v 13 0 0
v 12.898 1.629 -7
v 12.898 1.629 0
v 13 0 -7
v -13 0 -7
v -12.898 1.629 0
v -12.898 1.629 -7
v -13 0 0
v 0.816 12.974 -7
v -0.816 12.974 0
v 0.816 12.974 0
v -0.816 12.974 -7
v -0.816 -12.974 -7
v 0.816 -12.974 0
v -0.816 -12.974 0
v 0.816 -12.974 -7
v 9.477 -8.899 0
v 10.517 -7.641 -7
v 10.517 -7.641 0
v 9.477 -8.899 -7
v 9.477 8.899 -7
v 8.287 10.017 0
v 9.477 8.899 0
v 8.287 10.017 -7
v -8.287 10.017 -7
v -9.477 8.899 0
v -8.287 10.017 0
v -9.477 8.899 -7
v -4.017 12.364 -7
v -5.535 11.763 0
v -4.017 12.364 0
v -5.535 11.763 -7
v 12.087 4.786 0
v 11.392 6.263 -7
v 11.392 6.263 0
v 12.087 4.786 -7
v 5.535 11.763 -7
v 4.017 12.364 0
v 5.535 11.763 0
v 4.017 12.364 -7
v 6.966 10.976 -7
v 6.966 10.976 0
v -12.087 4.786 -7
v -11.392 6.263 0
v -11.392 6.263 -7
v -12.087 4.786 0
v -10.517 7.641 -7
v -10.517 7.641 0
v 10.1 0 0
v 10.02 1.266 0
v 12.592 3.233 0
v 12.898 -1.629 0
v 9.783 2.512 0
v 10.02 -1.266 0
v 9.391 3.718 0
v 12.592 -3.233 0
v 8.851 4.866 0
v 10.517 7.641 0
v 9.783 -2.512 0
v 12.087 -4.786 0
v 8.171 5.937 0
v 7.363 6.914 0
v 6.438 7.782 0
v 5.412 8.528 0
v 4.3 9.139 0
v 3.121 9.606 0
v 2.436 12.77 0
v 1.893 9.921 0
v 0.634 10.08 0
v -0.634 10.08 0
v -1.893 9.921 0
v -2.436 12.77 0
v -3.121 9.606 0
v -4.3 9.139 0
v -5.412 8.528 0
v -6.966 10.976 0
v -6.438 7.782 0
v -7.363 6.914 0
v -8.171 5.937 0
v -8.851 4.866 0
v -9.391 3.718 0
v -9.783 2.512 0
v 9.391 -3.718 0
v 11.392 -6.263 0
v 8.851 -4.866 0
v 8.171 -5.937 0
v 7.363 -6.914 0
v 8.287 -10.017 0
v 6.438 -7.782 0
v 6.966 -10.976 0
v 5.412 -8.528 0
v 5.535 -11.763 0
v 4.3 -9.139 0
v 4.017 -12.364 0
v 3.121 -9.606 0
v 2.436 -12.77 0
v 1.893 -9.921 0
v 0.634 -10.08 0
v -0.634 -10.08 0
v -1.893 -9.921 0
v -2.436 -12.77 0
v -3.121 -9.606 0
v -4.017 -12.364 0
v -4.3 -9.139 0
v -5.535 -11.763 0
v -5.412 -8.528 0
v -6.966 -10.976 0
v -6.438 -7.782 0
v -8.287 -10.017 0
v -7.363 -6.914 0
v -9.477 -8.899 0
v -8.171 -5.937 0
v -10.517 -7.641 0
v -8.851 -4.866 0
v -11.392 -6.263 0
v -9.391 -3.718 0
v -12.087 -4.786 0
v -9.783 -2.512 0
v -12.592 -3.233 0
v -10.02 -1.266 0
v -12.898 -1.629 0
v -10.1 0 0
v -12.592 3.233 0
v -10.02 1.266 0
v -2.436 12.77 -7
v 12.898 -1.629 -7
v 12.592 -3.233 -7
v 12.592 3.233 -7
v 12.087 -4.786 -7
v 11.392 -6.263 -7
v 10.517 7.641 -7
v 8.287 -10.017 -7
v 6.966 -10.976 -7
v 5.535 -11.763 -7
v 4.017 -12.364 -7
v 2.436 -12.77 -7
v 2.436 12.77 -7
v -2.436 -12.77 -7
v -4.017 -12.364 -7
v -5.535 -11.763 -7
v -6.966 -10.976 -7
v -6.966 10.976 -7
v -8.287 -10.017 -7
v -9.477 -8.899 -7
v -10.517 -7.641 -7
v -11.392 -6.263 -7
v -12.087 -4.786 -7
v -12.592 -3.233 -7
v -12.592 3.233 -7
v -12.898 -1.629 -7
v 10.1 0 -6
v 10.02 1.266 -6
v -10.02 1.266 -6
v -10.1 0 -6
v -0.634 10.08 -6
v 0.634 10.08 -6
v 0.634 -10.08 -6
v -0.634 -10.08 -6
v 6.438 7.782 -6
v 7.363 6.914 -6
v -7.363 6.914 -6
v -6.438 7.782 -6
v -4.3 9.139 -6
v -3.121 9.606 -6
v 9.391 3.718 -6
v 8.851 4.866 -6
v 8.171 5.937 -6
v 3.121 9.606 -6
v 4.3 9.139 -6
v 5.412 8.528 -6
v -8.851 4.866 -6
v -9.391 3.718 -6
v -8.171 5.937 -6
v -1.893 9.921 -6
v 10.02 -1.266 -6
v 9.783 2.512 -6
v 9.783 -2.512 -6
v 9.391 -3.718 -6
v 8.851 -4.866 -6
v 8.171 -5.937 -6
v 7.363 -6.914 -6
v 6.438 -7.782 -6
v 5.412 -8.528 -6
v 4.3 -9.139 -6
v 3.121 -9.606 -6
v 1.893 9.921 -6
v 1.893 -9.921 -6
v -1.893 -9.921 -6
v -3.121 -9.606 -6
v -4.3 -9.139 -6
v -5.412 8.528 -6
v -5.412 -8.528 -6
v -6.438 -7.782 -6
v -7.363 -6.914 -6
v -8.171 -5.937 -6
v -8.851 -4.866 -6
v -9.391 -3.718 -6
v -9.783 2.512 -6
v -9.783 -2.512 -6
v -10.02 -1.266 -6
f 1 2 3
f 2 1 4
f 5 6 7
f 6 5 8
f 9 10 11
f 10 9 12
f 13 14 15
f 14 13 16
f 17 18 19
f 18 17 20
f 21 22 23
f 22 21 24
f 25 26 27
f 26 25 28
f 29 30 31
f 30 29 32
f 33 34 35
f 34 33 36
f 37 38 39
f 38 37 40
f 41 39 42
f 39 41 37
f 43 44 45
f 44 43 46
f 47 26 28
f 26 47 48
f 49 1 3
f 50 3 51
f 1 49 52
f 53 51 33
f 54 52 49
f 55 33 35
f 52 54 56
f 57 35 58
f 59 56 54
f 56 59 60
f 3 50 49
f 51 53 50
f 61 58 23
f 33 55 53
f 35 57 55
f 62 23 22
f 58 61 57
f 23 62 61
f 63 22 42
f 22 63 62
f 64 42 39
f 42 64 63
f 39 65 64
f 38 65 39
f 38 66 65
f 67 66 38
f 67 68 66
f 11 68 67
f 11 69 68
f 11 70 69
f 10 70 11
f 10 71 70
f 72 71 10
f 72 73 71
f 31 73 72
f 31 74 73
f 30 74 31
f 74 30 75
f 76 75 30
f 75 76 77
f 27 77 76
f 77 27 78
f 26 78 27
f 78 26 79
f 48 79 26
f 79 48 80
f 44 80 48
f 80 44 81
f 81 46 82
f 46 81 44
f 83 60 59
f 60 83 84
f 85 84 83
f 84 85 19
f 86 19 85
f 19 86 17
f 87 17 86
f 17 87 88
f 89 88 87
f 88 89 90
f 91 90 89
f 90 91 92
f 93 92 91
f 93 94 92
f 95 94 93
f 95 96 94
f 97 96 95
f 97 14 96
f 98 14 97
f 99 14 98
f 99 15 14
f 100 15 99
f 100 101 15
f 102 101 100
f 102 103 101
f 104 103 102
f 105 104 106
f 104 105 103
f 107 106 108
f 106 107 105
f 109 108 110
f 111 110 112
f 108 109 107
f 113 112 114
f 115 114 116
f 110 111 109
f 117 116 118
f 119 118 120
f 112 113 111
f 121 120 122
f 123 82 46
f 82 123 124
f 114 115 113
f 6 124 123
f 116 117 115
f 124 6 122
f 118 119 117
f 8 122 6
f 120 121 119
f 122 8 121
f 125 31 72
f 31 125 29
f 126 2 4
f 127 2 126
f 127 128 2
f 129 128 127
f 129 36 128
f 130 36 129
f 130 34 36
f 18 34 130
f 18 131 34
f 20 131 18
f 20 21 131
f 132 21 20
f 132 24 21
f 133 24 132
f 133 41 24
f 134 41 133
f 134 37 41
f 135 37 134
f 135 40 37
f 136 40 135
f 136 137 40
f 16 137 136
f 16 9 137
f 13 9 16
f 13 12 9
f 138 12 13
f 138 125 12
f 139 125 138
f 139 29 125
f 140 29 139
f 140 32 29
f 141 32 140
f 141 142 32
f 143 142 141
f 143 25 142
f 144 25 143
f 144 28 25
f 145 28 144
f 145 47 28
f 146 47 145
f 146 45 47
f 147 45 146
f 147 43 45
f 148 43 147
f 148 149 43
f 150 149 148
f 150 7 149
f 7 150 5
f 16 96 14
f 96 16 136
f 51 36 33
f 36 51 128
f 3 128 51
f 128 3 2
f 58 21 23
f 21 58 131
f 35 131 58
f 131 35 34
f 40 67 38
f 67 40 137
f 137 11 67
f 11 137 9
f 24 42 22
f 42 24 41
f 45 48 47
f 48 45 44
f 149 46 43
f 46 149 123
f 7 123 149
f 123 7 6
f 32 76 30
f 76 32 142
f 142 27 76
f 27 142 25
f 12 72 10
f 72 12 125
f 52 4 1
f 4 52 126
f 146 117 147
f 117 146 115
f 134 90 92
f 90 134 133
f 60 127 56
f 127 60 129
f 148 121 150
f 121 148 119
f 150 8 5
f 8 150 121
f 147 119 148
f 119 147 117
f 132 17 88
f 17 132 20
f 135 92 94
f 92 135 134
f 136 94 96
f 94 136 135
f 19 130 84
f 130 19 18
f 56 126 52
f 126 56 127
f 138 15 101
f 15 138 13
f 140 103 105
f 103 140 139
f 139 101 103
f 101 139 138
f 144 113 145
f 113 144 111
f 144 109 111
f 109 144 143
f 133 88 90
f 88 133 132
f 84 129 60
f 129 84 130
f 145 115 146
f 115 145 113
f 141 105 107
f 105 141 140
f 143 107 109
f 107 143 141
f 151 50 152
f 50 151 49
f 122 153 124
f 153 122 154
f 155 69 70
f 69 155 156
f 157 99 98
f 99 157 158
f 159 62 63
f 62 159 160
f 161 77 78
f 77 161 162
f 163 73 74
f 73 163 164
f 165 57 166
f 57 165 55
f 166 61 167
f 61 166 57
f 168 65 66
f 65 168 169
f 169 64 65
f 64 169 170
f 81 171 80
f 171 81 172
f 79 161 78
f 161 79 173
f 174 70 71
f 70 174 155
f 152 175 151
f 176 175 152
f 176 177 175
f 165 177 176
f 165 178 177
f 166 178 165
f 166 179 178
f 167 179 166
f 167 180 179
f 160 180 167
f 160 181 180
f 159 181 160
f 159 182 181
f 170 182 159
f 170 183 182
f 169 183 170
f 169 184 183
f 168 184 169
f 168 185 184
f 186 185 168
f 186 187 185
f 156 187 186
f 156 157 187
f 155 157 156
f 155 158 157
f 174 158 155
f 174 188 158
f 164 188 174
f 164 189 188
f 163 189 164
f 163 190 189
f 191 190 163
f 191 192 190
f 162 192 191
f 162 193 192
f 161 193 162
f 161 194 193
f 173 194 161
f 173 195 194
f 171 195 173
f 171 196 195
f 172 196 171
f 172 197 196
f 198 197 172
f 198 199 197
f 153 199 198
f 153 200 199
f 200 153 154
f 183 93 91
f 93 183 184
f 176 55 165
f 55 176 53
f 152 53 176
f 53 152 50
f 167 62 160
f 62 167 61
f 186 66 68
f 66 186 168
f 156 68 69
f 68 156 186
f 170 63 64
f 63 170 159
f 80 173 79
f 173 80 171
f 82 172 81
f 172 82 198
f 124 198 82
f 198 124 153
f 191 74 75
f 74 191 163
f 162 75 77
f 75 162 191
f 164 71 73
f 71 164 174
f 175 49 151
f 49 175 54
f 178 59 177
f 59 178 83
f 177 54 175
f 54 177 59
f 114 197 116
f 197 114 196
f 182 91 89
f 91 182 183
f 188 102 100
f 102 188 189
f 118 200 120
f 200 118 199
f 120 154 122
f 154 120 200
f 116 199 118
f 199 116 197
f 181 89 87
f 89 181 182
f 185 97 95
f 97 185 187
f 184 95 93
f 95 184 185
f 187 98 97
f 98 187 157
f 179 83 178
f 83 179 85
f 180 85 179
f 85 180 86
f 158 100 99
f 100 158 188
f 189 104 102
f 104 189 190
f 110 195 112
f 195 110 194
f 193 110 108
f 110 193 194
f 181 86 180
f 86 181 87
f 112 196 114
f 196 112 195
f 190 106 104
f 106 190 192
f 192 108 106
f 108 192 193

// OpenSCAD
$fn = 50;


difference() {
	union() {
		translate(v = [0, 0, -7.0000000000]) {
			cylinder(h = 7, r = 13.0000000000);
		}
	}
	union() {
		#translate(v = [0, 0, -6.0000000000]) {
			cylinder(h = 6, r = 10.1000000000);
		}
	}
}
